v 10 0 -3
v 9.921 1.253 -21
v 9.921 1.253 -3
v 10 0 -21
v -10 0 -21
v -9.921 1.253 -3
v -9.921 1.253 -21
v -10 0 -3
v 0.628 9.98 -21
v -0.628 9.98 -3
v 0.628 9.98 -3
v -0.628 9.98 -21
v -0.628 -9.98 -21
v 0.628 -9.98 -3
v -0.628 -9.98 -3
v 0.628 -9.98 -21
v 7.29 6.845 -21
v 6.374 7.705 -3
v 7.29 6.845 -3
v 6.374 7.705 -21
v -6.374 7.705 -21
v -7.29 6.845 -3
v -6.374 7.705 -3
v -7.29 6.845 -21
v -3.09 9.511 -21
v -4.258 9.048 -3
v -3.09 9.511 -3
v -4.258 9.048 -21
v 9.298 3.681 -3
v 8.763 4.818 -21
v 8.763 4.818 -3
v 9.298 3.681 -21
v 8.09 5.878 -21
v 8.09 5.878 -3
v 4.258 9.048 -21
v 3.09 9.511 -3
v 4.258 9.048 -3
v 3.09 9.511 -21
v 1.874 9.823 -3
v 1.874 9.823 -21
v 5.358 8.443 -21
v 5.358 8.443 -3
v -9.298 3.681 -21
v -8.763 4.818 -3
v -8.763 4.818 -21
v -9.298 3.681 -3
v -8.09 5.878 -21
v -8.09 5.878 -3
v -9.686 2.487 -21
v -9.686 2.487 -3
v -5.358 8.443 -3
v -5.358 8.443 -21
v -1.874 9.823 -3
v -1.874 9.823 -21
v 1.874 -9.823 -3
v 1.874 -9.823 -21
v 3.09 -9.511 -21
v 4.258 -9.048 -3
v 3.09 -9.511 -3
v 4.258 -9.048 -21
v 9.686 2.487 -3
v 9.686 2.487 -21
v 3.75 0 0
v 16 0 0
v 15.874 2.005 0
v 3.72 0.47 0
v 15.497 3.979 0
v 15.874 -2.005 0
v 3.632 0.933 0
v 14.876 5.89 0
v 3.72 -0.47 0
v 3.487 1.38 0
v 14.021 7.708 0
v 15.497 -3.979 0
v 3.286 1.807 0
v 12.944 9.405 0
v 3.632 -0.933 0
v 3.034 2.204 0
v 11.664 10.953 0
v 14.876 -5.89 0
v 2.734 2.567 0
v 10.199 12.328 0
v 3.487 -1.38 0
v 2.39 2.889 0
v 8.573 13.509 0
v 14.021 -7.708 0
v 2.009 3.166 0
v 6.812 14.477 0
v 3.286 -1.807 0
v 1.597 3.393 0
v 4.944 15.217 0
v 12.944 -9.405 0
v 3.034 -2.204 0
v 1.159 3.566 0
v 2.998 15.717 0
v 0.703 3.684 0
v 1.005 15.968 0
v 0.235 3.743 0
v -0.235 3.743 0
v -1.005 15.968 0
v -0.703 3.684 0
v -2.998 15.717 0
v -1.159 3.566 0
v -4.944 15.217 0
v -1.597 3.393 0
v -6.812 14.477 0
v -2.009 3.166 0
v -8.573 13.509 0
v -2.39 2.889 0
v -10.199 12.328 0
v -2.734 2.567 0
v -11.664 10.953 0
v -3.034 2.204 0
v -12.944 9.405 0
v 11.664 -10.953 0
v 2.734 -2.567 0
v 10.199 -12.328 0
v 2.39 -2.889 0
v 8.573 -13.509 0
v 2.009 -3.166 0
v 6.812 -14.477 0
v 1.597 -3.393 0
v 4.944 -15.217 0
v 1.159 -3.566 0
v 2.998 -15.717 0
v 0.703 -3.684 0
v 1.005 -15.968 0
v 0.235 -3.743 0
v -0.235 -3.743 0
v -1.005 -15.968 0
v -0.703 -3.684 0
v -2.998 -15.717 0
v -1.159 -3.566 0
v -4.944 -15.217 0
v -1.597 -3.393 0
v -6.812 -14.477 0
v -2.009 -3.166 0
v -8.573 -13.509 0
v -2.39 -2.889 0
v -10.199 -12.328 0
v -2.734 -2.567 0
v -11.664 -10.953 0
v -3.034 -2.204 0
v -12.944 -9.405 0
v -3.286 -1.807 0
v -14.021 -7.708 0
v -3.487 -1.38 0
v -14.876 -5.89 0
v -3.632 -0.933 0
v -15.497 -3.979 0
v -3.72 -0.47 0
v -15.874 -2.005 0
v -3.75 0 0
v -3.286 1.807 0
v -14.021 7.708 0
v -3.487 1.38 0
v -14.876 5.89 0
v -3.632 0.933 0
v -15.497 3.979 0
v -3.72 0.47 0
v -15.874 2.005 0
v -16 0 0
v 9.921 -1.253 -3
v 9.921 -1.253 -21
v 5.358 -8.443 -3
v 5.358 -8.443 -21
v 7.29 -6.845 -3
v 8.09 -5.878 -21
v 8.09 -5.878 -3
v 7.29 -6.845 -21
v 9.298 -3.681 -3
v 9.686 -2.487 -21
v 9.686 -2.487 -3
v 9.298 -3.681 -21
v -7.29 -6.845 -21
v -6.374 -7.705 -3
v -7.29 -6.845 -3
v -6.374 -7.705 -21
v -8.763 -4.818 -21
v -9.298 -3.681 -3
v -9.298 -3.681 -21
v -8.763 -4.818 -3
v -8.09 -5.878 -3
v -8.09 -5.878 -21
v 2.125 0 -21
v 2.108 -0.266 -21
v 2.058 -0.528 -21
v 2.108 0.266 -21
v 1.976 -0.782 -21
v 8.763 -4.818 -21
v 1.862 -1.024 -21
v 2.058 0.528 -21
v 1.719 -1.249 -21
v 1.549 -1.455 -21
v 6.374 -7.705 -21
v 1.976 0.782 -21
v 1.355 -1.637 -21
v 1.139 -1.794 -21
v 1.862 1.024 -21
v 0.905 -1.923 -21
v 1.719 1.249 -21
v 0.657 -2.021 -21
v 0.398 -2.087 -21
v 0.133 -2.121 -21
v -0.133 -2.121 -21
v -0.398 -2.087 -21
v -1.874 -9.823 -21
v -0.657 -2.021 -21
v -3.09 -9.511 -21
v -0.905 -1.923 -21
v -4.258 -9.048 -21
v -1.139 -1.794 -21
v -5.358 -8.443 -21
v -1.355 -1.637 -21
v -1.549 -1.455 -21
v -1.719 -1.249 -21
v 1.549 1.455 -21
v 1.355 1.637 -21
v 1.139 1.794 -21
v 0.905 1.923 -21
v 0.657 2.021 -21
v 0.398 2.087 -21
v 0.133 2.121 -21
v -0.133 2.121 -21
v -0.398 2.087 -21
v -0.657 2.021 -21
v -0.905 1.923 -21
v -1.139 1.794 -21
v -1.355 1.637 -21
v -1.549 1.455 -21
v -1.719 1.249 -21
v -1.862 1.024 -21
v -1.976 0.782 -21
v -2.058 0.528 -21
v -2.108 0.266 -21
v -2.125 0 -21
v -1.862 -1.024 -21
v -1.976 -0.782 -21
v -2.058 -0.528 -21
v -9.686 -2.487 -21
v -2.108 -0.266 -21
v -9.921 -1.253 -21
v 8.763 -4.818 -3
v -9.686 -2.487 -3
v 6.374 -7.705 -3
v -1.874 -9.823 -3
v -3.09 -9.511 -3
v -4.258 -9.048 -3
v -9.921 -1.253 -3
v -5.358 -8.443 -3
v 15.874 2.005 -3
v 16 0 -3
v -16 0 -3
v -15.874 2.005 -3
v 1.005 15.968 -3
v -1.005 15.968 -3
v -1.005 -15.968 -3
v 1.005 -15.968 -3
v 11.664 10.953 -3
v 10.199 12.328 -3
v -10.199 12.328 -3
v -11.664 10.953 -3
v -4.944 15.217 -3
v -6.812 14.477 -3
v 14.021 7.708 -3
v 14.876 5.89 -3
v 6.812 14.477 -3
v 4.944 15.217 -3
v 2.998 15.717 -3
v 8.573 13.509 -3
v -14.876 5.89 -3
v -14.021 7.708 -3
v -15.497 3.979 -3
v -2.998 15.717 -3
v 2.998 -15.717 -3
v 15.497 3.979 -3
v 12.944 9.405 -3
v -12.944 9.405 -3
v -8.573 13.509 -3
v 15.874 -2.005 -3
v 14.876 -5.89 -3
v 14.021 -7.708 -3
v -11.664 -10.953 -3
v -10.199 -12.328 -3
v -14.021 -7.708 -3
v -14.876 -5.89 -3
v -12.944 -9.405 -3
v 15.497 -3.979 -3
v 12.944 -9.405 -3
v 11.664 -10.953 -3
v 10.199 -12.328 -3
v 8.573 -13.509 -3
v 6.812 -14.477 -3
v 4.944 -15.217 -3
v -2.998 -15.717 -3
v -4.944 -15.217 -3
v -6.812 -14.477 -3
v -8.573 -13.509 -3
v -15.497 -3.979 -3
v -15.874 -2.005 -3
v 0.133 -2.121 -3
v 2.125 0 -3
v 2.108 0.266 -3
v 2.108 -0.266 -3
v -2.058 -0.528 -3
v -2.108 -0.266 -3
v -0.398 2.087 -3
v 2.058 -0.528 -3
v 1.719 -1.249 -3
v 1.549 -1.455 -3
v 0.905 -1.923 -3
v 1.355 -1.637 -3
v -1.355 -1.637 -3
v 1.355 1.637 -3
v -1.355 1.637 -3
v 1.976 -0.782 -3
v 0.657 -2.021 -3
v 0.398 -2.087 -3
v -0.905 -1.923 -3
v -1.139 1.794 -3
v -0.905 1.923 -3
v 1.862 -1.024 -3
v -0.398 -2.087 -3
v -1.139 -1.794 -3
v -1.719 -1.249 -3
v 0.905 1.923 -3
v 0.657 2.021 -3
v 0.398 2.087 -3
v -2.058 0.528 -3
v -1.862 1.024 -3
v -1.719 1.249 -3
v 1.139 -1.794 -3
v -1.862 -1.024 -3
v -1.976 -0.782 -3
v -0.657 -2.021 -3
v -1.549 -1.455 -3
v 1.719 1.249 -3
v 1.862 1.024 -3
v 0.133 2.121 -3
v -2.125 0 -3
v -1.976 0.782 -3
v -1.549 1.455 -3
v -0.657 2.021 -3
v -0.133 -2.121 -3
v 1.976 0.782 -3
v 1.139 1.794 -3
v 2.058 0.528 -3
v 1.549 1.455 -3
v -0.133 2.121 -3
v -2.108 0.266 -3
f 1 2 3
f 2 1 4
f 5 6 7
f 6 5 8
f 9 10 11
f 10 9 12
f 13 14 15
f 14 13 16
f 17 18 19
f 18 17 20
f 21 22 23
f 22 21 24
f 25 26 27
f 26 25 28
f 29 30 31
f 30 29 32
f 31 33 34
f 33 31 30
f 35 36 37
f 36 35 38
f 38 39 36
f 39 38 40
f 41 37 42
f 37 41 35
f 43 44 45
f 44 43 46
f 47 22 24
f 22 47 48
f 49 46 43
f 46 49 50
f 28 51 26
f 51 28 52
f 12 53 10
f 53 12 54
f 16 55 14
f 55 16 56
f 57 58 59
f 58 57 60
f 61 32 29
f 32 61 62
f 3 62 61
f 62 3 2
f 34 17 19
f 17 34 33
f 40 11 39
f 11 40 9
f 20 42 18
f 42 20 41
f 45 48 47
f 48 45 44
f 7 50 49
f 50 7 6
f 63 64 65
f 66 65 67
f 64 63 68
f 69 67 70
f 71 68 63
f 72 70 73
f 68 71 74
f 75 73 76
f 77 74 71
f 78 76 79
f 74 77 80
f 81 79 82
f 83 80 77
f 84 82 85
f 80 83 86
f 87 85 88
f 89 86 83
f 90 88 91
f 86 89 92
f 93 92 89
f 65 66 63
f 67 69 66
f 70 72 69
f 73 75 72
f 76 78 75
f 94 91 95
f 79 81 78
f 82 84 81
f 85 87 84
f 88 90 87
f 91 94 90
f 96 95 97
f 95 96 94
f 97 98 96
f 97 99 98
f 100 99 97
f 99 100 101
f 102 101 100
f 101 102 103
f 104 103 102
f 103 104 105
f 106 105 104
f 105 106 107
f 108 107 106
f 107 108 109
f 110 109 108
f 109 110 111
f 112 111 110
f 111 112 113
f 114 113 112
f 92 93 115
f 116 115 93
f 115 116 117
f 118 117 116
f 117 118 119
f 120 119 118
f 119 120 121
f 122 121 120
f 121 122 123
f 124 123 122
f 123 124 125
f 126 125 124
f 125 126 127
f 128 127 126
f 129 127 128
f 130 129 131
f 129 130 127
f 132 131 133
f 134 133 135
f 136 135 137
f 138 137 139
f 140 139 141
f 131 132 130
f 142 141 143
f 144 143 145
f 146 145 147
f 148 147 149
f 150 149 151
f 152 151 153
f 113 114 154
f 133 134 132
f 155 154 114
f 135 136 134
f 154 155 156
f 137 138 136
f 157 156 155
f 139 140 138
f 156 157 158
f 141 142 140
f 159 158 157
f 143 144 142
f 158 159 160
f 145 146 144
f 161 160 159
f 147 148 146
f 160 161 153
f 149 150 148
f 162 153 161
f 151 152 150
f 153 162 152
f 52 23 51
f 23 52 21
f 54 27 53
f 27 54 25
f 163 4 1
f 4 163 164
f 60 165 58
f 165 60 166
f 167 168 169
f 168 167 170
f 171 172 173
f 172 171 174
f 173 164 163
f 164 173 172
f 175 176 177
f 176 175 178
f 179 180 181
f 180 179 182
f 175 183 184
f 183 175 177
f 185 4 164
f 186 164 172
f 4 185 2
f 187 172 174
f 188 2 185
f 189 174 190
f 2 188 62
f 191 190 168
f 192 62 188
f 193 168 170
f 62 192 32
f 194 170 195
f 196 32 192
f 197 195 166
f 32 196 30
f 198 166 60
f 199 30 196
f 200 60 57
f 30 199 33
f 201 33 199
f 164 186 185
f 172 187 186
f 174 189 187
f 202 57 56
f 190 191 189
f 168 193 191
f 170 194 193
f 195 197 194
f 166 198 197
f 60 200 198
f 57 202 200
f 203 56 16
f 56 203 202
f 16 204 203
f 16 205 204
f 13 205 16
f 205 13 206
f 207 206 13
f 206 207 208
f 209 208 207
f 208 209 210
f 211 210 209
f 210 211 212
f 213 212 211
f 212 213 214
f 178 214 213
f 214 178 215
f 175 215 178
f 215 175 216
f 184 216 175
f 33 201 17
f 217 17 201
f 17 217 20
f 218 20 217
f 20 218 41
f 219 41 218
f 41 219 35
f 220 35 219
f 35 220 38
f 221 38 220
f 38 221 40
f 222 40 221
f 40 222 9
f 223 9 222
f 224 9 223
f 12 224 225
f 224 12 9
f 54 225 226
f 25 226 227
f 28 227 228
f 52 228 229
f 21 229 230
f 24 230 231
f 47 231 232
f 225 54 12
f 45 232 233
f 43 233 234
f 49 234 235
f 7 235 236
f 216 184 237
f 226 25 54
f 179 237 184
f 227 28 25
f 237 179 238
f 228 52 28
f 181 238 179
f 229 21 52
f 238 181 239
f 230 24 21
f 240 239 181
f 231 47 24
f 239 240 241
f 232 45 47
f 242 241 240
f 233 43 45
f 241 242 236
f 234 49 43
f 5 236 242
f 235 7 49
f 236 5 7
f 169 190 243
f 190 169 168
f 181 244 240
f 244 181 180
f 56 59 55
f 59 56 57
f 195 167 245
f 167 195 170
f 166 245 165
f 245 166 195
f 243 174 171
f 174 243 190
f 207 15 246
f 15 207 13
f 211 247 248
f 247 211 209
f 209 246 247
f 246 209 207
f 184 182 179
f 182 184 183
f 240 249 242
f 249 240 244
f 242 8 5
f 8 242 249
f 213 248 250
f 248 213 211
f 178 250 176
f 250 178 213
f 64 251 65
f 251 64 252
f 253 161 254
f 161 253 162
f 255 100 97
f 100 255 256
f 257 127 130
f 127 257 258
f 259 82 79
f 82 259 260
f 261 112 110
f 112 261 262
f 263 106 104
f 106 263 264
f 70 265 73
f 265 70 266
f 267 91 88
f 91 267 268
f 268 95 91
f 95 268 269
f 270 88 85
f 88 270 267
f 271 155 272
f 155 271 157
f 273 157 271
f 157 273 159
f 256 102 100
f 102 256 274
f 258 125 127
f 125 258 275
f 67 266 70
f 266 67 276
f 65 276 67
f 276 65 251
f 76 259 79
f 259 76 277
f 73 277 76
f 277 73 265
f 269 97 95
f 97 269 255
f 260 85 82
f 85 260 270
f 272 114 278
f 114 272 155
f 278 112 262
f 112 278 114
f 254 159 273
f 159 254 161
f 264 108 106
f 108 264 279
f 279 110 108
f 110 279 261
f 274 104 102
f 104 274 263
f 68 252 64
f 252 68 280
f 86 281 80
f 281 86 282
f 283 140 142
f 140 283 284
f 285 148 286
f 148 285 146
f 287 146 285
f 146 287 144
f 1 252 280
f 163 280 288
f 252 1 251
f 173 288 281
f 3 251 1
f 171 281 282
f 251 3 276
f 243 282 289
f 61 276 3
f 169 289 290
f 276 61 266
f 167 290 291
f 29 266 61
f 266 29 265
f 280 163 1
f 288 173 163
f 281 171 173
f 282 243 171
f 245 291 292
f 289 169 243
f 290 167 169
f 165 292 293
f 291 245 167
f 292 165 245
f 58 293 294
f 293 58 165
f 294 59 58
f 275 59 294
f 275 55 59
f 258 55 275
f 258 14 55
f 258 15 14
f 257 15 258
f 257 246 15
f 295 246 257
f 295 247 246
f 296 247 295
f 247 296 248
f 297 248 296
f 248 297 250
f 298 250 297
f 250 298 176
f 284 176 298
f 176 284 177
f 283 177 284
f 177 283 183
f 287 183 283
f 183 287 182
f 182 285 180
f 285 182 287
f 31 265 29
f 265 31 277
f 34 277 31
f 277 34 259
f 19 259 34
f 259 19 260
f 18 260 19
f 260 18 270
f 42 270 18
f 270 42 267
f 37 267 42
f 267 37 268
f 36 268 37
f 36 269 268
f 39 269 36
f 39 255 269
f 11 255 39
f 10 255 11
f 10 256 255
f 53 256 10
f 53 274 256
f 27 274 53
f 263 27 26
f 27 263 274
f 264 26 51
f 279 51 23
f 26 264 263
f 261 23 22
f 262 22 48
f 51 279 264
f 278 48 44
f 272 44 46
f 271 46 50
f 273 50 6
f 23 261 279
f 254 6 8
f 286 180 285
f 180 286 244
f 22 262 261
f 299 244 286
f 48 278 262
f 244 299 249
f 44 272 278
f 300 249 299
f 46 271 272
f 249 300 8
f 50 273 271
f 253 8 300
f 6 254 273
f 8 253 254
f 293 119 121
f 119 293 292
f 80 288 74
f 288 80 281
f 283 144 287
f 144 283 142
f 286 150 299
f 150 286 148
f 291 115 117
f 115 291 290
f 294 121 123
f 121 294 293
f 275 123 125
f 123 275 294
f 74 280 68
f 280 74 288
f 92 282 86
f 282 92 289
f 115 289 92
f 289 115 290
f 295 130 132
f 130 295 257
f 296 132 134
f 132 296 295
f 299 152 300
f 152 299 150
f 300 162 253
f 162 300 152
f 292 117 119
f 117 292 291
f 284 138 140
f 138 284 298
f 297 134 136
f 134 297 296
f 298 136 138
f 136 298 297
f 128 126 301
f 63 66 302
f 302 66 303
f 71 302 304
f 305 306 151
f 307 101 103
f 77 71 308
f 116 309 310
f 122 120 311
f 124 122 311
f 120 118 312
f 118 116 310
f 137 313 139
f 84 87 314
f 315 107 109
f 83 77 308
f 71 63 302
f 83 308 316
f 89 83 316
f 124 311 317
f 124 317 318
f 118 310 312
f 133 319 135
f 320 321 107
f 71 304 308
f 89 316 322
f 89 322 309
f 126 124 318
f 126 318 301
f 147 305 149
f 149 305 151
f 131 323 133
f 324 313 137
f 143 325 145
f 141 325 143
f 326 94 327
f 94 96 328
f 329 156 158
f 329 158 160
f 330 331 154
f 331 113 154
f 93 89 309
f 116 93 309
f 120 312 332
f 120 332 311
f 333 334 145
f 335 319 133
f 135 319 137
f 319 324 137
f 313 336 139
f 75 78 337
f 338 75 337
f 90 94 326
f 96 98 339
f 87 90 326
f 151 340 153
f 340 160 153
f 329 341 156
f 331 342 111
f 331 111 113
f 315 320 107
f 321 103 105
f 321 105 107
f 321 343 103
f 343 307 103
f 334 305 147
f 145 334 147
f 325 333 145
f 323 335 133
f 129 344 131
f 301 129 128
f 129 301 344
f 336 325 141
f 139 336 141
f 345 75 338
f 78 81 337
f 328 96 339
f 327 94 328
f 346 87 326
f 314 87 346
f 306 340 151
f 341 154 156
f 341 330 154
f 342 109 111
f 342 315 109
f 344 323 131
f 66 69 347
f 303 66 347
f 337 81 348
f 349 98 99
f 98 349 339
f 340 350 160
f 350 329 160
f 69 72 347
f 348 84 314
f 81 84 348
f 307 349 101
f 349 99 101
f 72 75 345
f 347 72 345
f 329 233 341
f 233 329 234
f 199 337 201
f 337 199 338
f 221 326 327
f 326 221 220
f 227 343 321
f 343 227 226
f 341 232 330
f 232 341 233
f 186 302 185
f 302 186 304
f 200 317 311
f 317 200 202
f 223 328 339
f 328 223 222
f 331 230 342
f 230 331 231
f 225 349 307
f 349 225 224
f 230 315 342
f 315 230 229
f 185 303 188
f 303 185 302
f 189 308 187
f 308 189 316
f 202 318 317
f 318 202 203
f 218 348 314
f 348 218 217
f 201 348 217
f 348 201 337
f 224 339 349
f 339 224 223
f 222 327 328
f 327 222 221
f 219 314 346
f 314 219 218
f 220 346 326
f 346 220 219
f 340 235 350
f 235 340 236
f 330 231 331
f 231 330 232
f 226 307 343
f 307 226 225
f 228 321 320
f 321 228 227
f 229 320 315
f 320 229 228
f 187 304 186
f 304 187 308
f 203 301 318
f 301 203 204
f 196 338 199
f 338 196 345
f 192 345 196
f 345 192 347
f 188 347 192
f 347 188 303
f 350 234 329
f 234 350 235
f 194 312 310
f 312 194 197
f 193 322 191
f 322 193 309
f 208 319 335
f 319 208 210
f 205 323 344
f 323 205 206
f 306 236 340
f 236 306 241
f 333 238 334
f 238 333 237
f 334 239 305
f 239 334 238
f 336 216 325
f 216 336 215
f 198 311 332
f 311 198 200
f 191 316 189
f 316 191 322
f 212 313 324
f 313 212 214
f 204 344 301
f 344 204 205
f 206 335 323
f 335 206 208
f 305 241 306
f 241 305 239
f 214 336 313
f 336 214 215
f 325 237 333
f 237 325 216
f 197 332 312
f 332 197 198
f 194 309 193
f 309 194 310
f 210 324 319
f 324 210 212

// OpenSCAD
$fn = 50;


difference() {
	union() {
		translate(v = [0, 0, -21.0000000000]) {
			cylinder(h = 21, r = 10.0000000000);
		}
		translate(v = [0, 0, -3.0000000000]) {
			cylinder(h = 3, r = 16.0000000000);
		}
	}
	union() {
		translate(v = [0, 0, 0]) {
			rotate(a = [0, 0, 0]) {
				difference() {
					union() {
						#translate(v = [0, 0, -21.0000000000]) {
							cylinder(h = 21, r = 2.0000000000);
						}
						#translate(v = [0, 0, -3]) {
							cylinder(h = 3, r1 = 2.1250000000, r2 = 3.7500000000);
						}
						#translate(v = [0, 0, -21.0000000000]) {
							cylinder(h = 21, r = 2.1250000000);
						}
						#translate(v = [0, 0, -21.0000000000]) {
							cylinder(h = 21, r = 2.0000000000);
						}
					}
					union();
				}
			}
		}
	}
}
